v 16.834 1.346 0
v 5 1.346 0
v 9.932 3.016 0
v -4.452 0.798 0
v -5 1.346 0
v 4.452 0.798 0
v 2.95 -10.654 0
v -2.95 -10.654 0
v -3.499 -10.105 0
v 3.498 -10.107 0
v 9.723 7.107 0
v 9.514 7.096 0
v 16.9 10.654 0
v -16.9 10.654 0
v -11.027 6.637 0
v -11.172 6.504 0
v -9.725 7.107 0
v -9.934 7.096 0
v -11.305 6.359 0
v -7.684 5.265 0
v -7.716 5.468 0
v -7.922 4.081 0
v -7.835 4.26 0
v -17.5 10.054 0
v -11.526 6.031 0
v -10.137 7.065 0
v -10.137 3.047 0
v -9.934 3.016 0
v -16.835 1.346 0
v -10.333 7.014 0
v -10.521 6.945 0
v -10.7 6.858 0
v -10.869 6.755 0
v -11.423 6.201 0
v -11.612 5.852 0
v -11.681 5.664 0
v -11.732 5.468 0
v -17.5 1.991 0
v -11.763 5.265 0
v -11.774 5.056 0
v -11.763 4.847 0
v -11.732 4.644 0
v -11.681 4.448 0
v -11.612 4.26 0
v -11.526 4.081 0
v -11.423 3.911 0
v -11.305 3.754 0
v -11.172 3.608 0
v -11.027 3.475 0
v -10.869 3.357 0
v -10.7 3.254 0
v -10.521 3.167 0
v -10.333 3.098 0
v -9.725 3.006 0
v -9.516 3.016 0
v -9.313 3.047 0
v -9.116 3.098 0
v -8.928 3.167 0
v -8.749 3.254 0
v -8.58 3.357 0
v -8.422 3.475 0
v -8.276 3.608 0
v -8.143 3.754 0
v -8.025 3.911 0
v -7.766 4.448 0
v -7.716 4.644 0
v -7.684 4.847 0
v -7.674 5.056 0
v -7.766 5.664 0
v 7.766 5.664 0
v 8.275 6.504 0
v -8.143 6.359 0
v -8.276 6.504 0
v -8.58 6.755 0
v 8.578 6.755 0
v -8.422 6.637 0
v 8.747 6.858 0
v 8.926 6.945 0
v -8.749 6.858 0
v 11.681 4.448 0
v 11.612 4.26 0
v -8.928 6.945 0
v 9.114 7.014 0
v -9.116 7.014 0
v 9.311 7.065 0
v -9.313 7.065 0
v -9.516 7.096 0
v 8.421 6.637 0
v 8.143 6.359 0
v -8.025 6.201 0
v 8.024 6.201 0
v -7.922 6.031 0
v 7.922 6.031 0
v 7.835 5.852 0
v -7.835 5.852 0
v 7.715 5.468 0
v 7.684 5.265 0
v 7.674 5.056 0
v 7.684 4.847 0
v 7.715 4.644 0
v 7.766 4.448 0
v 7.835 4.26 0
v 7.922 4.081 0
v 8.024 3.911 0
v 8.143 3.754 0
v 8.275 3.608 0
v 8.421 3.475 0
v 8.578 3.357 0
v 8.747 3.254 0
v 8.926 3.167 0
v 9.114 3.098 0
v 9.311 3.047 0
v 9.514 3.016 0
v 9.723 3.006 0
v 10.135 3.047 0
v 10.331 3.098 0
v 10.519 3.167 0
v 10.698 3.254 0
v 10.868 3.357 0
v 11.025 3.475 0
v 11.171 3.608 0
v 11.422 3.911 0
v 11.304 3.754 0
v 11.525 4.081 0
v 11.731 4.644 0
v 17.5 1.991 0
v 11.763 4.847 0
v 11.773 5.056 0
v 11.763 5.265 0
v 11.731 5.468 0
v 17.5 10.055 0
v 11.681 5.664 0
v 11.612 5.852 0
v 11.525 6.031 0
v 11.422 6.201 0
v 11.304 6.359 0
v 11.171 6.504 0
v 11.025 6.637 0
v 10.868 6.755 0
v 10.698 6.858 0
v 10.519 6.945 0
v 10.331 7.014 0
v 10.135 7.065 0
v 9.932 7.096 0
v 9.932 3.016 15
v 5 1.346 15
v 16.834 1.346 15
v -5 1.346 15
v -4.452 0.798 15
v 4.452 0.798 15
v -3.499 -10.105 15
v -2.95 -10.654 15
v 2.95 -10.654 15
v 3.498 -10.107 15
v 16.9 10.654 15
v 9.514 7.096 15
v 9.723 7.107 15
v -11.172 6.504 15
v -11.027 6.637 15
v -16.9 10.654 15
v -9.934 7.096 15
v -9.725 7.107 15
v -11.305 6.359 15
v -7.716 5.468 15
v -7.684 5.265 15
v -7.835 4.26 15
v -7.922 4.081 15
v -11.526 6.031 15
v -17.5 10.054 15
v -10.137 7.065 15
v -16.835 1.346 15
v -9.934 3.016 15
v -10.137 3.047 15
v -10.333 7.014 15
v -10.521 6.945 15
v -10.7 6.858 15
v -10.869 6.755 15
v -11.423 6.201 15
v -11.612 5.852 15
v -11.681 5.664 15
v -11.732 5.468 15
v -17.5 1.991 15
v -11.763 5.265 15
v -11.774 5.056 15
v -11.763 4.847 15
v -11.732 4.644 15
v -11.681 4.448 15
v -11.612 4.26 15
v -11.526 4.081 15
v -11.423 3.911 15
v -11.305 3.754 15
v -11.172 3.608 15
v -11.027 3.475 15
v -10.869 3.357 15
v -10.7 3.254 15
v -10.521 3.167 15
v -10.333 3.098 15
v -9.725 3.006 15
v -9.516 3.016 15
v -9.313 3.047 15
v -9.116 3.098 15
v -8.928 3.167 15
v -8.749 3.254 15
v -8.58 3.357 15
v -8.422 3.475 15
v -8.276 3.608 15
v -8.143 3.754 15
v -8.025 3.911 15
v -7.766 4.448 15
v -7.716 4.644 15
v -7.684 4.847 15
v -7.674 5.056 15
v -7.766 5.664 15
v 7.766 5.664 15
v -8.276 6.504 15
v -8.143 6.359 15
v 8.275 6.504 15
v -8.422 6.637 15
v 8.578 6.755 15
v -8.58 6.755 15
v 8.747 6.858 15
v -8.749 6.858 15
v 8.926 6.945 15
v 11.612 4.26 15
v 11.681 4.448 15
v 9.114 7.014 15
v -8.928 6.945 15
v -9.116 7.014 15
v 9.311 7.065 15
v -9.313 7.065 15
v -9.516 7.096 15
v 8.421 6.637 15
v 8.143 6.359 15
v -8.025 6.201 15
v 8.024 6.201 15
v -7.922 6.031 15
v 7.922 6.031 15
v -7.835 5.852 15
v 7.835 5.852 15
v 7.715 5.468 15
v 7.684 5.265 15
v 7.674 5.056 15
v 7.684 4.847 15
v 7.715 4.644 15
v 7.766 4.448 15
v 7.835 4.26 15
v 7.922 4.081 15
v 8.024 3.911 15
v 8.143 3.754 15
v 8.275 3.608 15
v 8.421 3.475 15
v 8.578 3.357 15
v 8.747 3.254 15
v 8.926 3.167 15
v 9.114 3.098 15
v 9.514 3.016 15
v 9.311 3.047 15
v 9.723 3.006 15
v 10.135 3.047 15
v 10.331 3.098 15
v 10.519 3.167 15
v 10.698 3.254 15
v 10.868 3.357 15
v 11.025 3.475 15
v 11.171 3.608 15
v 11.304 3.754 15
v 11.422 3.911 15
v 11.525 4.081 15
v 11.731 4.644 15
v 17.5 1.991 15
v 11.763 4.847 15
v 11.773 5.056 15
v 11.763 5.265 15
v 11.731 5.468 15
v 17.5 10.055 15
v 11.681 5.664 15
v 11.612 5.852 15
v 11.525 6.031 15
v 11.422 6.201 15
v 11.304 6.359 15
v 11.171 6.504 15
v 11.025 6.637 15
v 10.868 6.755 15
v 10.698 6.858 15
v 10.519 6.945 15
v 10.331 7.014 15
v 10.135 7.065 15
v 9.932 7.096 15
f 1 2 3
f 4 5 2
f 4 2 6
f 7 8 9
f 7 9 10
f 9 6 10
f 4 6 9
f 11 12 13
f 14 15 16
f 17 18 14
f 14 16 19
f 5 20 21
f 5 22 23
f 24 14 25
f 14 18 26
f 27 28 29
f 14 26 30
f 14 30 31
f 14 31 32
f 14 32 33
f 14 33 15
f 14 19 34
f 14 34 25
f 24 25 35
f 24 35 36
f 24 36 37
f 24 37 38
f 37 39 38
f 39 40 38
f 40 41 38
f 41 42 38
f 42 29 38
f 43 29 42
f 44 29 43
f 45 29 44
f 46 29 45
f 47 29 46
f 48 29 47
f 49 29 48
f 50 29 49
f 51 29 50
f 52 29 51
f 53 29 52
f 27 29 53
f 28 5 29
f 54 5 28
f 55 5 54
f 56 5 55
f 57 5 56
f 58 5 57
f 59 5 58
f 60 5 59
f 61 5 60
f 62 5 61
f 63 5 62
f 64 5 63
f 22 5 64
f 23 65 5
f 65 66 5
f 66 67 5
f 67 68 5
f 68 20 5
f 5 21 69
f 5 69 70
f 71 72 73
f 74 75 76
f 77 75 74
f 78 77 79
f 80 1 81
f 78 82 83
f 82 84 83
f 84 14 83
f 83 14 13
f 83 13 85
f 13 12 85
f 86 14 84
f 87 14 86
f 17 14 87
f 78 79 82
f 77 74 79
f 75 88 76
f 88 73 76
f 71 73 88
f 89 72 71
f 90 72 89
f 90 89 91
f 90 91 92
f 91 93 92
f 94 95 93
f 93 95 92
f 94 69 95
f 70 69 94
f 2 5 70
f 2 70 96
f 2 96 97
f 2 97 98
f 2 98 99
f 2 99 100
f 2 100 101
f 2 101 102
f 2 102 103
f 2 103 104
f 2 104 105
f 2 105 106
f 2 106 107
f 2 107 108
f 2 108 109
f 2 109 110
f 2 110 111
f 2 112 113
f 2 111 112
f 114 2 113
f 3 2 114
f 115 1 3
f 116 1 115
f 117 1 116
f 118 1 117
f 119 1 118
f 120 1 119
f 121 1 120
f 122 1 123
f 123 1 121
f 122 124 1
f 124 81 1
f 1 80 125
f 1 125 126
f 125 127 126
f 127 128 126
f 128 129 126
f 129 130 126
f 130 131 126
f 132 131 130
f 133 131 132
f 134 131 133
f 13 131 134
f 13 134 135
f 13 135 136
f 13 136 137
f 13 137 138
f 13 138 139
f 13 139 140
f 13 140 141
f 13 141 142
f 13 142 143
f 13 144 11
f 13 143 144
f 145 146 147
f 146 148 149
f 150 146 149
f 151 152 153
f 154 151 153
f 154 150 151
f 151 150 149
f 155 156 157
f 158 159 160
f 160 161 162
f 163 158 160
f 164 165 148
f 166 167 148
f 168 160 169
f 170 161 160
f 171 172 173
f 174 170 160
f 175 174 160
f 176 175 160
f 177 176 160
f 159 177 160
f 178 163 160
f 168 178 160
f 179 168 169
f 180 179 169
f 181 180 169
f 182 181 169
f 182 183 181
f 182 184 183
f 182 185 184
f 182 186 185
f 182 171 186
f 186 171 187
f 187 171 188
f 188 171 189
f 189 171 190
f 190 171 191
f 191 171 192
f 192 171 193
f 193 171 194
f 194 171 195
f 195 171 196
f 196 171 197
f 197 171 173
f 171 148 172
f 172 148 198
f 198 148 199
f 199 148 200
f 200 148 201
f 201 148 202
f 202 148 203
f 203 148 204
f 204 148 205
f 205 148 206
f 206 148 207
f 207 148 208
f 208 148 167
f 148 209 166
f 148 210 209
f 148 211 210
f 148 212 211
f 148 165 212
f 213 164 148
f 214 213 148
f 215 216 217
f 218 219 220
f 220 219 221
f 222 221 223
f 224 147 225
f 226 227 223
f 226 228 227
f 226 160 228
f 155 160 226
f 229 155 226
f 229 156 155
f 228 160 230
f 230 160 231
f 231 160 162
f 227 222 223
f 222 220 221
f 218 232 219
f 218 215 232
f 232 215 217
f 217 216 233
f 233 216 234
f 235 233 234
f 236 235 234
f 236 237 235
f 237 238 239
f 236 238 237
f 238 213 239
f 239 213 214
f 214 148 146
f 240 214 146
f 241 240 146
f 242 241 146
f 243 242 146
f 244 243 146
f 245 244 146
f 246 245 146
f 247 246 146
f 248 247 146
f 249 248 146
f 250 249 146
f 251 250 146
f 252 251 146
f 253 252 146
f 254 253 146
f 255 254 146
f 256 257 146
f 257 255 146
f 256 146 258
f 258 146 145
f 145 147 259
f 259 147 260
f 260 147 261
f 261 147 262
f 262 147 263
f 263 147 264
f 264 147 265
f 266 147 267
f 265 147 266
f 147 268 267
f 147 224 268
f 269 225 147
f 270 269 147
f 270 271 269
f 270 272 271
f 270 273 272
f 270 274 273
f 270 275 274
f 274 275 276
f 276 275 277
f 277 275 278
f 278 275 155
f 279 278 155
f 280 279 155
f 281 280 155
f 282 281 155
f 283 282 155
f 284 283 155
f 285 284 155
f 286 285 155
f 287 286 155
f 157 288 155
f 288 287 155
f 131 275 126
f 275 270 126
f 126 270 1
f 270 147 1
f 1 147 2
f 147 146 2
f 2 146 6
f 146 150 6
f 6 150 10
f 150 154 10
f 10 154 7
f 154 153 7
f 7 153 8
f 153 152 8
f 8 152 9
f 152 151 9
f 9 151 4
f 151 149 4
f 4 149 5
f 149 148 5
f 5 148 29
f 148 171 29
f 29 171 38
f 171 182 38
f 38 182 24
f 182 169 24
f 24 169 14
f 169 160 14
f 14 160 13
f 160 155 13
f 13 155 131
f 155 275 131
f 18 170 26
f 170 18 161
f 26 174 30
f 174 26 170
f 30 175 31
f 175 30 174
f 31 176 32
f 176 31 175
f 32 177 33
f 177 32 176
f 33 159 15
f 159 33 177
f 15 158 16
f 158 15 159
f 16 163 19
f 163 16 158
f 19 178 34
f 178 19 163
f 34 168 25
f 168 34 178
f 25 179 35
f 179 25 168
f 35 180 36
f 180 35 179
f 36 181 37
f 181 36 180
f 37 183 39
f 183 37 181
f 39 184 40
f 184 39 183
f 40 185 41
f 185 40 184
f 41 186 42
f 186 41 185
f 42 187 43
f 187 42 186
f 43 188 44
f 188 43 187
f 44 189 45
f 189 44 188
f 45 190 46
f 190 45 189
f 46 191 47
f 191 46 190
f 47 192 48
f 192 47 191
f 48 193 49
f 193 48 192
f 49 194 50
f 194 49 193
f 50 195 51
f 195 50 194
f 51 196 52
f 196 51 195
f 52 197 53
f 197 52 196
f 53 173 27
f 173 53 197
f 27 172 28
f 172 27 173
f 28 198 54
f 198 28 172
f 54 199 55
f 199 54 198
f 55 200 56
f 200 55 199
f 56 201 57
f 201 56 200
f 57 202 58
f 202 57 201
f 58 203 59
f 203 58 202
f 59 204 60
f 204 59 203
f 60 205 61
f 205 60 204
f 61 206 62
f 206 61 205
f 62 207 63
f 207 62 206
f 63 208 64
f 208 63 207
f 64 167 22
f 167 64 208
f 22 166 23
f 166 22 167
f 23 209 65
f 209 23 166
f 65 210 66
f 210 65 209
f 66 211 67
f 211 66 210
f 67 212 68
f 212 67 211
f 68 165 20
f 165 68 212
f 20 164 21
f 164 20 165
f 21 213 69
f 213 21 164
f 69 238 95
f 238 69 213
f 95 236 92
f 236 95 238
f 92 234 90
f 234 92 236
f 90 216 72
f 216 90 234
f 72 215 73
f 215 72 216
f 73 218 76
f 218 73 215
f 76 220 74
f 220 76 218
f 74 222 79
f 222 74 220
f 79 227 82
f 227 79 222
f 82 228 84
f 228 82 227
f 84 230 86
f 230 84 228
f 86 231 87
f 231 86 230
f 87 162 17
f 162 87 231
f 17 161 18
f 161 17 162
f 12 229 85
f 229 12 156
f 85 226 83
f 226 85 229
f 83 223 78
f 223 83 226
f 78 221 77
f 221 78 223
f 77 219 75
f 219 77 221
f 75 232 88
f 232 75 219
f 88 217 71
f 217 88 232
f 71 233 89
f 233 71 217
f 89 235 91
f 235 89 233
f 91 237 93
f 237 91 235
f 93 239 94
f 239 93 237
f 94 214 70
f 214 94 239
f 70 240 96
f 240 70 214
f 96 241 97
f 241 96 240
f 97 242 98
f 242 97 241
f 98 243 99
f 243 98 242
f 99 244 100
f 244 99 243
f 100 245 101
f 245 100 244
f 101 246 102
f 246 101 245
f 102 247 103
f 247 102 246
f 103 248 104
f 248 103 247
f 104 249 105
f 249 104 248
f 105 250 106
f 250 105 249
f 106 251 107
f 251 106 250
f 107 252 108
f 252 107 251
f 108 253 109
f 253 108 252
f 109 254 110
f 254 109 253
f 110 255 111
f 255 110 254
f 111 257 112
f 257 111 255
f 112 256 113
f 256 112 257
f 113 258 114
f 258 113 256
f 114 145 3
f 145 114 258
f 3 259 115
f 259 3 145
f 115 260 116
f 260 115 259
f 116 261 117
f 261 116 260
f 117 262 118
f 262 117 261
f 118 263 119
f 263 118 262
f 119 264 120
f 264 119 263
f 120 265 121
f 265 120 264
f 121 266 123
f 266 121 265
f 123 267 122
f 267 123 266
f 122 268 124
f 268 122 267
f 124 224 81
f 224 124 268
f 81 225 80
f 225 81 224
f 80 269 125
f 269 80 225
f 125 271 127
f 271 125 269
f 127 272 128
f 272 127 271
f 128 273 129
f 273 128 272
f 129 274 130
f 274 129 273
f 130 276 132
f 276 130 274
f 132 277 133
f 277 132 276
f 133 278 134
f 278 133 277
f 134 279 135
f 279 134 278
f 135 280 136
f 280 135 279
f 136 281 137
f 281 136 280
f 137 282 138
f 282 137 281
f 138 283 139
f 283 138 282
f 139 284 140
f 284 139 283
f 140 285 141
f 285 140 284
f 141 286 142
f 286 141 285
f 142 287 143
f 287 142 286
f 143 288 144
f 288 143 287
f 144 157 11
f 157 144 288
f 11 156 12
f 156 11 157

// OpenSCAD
// Generated by inkscape 0.92.4 + inkscape-paths2openscad 0.25
// Thu Jul 25 02:56:28 2019 from "stollen35x21+08p.svg"

// Module names are of the form poly_<inkscape-path-id>().  As a result,
// you can associate a polygon in this OpenSCAD program with the corresponding
// SVG element in the Inkscape document by looking for the XML element with
// the attribute id="inkscape-path-id".

// fudge value is used to ensure that subtracted solids are a tad taller
// in the z dimension than the polygon being subtracted from.  This helps
// keep the resulting .stl file manifold.
fudge = 0.1;
zsize = 15;
line_fn = 4;
min_line_width = 0.20000000298;
line_width_scale = 1.0;
function min_line_mm(w) = max(min_line_width, w * line_width_scale) * 96/25.4;


path972_0_center = [0.000000,0.000000];
path972_0_points = [[-63.872077,-40.267583],[-66.141609,-37.998052],[-66.141609,-7.523442],[-63.627937,-5.087891],[-18.897465,-5.087891],[-16.827149,-3.017579],[-13.223634,38.193363],[-11.151368,40.267583],[11.149416,40.267583],[13.219728,38.199221],[16.825193,-3.015625],[18.897463,-5.087891],[63.625985,-5.087891],[66.141609,-7.523442],[66.141609,-38.001960],[63.875986,-40.267583],[-63.872077,-40.267583],[-36.754888,-26.859378],[-35.964839,-26.819196],[-35.197028,-26.701267],[-34.455420,-26.509559],[-33.743979,-26.248041],[-33.066670,-25.920683],[-32.427458,-25.531453],[-31.830308,-25.084320],[-31.279185,-24.583254],[-30.778053,-24.032222],[-30.330878,-23.435195],[-29.941623,-22.796141],[-29.614254,-22.119028],[-29.352736,-21.407827],[-29.161033,-20.666505],[-29.043111,-19.899032],[-29.002933,-19.109377],[-29.043111,-18.319722],[-29.161033,-17.552250],[-29.352736,-16.810929],[-29.614254,-16.099728],[-29.941623,-15.422615],[-30.330878,-14.783561],[-30.778053,-14.186534],[-31.279185,-13.635503],[-31.830308,-13.134436],[-32.427458,-12.687304],[-33.066670,-12.298074],[-33.743979,-11.970716],[-34.455420,-11.709198],[-35.197028,-11.517490],[-35.964839,-11.399561],[-36.754888,-11.359379],[-37.544850,-11.399562],[-38.312412,-11.517493],[-39.053635,-11.709202],[-39.764576,-11.970720],[-40.441292,-12.298079],[-41.079843,-12.687309],[-41.676287,-13.134442],[-42.226681,-13.635509],[-42.727083,-14.186540],[-43.173553,-14.783567],[-43.562147,-15.422620],[-43.888924,-16.099732],[-44.149943,-16.810932],[-44.341261,-17.552252],[-44.458937,-18.319724],[-44.499028,-19.109377],[-44.458937,-19.899031],[-44.341261,-20.666502],[-44.149943,-21.407823],[-43.888924,-22.119023],[-43.562147,-22.796135],[-43.173553,-23.435189],[-42.727083,-24.032216],[-42.226681,-24.583247],[-41.676287,-25.084313],[-41.079843,-25.531446],[-40.441292,-25.920677],[-39.764576,-26.248036],[-39.053635,-26.509554],[-38.312412,-26.701263],[-37.544850,-26.819194],[-36.754888,-26.859378],[-36.754888,-26.859378],[36.747074,-26.859378],[37.537102,-26.819196],[38.304852,-26.701267],[39.046364,-26.509559],[39.757681,-26.248041],[40.434842,-25.920683],[41.073889,-25.531453],[41.670862,-25.084320],[42.221803,-24.583254],[42.722753,-24.032222],[43.169752,-23.435195],[43.558841,-22.796141],[43.886062,-22.119028],[44.147454,-21.407827],[44.339060,-20.666505],[44.456921,-19.899032],[44.497076,-19.109377],[44.456921,-18.319722],[44.339060,-17.552250],[44.147454,-16.810929],[43.886062,-16.099728],[43.558841,-15.422615],[43.169752,-14.783561],[42.722753,-14.186534],[42.221803,-13.635503],[41.670862,-13.134436],[41.073889,-12.687304],[40.434842,-12.298074],[39.757681,-11.970716],[39.046364,-11.709198],[38.304852,-11.517490],[37.537102,-11.399561],[36.747074,-11.359379],[35.957112,-11.399562],[35.189549,-11.517493],[34.448326,-11.709202],[33.737385,-11.970720],[33.060668,-12.298079],[32.422117,-12.687309],[31.825673,-13.134442],[31.275279,-13.635509],[30.774877,-14.186540],[30.328407,-14.783567],[29.939813,-15.422620],[29.613036,-16.099732],[29.352018,-16.810932],[29.160700,-17.552252],[29.043025,-18.319724],[29.002935,-19.109377],[29.043025,-19.899031],[29.160700,-20.666502],[29.352018,-21.407823],[29.613036,-22.119023],[29.939813,-22.796135],[30.328407,-23.435189],[30.774877,-24.032216],[31.275279,-24.583247],[31.825673,-25.084313],[32.422117,-25.531446],[33.060668,-25.920677],[33.737385,-26.248036],[34.448326,-26.509554],[35.189549,-26.701263],[35.957112,-26.819194],[36.747074,-26.859378],[36.747074,-26.859378]];
path972_0_paths = [[0,1,2,3,4,5,6,7,8,9,10,11,12,13,14,15,16],
				[17,18,19,20,21,22,23,24,25,26,27,28,29,30,31,32,33,34,35,36,37,38,39,40,41,42,43,44,45,46,47,48,49,50,51,52,53,54,55,56,57,58,59,60,61,62,63,64,65,66,67,68,69,70,71,72,73,74,75,76,77,78,79,80,81,82],
				[83,84,85,86,87,88,89,90,91,92,93,94,95,96,97,98,99,100,101,102,103,104,105,106,107,108,109,110,111,112,113,114,115,116,117,118,119,120,121,122,123,124,125,126,127,128,129,130,131,132,133,134,135,136,137,138,139,140,141,142,143,144,145,146,147,148]];
module poly_path972(h, w, s, res=line_fn)
{
  scale([25.4/96, -25.4/96, 1]) union()
  {
    translate (path972_0_center) linear_extrude(height=h, convexity=10, scale=0.01*s)
      translate (-path972_0_center) polygon(path972_0_points, path972_0_paths);
  }
}

module stollen35x2108p(h)
{
  difference()
  {
    union()
    {
      translate ([0,0,0]) poly_path972(h, min_line_mm(0.19999999), 100.0);
    }
    union()
    {
    }
  }
}

stollen35x2108p(zsize);
